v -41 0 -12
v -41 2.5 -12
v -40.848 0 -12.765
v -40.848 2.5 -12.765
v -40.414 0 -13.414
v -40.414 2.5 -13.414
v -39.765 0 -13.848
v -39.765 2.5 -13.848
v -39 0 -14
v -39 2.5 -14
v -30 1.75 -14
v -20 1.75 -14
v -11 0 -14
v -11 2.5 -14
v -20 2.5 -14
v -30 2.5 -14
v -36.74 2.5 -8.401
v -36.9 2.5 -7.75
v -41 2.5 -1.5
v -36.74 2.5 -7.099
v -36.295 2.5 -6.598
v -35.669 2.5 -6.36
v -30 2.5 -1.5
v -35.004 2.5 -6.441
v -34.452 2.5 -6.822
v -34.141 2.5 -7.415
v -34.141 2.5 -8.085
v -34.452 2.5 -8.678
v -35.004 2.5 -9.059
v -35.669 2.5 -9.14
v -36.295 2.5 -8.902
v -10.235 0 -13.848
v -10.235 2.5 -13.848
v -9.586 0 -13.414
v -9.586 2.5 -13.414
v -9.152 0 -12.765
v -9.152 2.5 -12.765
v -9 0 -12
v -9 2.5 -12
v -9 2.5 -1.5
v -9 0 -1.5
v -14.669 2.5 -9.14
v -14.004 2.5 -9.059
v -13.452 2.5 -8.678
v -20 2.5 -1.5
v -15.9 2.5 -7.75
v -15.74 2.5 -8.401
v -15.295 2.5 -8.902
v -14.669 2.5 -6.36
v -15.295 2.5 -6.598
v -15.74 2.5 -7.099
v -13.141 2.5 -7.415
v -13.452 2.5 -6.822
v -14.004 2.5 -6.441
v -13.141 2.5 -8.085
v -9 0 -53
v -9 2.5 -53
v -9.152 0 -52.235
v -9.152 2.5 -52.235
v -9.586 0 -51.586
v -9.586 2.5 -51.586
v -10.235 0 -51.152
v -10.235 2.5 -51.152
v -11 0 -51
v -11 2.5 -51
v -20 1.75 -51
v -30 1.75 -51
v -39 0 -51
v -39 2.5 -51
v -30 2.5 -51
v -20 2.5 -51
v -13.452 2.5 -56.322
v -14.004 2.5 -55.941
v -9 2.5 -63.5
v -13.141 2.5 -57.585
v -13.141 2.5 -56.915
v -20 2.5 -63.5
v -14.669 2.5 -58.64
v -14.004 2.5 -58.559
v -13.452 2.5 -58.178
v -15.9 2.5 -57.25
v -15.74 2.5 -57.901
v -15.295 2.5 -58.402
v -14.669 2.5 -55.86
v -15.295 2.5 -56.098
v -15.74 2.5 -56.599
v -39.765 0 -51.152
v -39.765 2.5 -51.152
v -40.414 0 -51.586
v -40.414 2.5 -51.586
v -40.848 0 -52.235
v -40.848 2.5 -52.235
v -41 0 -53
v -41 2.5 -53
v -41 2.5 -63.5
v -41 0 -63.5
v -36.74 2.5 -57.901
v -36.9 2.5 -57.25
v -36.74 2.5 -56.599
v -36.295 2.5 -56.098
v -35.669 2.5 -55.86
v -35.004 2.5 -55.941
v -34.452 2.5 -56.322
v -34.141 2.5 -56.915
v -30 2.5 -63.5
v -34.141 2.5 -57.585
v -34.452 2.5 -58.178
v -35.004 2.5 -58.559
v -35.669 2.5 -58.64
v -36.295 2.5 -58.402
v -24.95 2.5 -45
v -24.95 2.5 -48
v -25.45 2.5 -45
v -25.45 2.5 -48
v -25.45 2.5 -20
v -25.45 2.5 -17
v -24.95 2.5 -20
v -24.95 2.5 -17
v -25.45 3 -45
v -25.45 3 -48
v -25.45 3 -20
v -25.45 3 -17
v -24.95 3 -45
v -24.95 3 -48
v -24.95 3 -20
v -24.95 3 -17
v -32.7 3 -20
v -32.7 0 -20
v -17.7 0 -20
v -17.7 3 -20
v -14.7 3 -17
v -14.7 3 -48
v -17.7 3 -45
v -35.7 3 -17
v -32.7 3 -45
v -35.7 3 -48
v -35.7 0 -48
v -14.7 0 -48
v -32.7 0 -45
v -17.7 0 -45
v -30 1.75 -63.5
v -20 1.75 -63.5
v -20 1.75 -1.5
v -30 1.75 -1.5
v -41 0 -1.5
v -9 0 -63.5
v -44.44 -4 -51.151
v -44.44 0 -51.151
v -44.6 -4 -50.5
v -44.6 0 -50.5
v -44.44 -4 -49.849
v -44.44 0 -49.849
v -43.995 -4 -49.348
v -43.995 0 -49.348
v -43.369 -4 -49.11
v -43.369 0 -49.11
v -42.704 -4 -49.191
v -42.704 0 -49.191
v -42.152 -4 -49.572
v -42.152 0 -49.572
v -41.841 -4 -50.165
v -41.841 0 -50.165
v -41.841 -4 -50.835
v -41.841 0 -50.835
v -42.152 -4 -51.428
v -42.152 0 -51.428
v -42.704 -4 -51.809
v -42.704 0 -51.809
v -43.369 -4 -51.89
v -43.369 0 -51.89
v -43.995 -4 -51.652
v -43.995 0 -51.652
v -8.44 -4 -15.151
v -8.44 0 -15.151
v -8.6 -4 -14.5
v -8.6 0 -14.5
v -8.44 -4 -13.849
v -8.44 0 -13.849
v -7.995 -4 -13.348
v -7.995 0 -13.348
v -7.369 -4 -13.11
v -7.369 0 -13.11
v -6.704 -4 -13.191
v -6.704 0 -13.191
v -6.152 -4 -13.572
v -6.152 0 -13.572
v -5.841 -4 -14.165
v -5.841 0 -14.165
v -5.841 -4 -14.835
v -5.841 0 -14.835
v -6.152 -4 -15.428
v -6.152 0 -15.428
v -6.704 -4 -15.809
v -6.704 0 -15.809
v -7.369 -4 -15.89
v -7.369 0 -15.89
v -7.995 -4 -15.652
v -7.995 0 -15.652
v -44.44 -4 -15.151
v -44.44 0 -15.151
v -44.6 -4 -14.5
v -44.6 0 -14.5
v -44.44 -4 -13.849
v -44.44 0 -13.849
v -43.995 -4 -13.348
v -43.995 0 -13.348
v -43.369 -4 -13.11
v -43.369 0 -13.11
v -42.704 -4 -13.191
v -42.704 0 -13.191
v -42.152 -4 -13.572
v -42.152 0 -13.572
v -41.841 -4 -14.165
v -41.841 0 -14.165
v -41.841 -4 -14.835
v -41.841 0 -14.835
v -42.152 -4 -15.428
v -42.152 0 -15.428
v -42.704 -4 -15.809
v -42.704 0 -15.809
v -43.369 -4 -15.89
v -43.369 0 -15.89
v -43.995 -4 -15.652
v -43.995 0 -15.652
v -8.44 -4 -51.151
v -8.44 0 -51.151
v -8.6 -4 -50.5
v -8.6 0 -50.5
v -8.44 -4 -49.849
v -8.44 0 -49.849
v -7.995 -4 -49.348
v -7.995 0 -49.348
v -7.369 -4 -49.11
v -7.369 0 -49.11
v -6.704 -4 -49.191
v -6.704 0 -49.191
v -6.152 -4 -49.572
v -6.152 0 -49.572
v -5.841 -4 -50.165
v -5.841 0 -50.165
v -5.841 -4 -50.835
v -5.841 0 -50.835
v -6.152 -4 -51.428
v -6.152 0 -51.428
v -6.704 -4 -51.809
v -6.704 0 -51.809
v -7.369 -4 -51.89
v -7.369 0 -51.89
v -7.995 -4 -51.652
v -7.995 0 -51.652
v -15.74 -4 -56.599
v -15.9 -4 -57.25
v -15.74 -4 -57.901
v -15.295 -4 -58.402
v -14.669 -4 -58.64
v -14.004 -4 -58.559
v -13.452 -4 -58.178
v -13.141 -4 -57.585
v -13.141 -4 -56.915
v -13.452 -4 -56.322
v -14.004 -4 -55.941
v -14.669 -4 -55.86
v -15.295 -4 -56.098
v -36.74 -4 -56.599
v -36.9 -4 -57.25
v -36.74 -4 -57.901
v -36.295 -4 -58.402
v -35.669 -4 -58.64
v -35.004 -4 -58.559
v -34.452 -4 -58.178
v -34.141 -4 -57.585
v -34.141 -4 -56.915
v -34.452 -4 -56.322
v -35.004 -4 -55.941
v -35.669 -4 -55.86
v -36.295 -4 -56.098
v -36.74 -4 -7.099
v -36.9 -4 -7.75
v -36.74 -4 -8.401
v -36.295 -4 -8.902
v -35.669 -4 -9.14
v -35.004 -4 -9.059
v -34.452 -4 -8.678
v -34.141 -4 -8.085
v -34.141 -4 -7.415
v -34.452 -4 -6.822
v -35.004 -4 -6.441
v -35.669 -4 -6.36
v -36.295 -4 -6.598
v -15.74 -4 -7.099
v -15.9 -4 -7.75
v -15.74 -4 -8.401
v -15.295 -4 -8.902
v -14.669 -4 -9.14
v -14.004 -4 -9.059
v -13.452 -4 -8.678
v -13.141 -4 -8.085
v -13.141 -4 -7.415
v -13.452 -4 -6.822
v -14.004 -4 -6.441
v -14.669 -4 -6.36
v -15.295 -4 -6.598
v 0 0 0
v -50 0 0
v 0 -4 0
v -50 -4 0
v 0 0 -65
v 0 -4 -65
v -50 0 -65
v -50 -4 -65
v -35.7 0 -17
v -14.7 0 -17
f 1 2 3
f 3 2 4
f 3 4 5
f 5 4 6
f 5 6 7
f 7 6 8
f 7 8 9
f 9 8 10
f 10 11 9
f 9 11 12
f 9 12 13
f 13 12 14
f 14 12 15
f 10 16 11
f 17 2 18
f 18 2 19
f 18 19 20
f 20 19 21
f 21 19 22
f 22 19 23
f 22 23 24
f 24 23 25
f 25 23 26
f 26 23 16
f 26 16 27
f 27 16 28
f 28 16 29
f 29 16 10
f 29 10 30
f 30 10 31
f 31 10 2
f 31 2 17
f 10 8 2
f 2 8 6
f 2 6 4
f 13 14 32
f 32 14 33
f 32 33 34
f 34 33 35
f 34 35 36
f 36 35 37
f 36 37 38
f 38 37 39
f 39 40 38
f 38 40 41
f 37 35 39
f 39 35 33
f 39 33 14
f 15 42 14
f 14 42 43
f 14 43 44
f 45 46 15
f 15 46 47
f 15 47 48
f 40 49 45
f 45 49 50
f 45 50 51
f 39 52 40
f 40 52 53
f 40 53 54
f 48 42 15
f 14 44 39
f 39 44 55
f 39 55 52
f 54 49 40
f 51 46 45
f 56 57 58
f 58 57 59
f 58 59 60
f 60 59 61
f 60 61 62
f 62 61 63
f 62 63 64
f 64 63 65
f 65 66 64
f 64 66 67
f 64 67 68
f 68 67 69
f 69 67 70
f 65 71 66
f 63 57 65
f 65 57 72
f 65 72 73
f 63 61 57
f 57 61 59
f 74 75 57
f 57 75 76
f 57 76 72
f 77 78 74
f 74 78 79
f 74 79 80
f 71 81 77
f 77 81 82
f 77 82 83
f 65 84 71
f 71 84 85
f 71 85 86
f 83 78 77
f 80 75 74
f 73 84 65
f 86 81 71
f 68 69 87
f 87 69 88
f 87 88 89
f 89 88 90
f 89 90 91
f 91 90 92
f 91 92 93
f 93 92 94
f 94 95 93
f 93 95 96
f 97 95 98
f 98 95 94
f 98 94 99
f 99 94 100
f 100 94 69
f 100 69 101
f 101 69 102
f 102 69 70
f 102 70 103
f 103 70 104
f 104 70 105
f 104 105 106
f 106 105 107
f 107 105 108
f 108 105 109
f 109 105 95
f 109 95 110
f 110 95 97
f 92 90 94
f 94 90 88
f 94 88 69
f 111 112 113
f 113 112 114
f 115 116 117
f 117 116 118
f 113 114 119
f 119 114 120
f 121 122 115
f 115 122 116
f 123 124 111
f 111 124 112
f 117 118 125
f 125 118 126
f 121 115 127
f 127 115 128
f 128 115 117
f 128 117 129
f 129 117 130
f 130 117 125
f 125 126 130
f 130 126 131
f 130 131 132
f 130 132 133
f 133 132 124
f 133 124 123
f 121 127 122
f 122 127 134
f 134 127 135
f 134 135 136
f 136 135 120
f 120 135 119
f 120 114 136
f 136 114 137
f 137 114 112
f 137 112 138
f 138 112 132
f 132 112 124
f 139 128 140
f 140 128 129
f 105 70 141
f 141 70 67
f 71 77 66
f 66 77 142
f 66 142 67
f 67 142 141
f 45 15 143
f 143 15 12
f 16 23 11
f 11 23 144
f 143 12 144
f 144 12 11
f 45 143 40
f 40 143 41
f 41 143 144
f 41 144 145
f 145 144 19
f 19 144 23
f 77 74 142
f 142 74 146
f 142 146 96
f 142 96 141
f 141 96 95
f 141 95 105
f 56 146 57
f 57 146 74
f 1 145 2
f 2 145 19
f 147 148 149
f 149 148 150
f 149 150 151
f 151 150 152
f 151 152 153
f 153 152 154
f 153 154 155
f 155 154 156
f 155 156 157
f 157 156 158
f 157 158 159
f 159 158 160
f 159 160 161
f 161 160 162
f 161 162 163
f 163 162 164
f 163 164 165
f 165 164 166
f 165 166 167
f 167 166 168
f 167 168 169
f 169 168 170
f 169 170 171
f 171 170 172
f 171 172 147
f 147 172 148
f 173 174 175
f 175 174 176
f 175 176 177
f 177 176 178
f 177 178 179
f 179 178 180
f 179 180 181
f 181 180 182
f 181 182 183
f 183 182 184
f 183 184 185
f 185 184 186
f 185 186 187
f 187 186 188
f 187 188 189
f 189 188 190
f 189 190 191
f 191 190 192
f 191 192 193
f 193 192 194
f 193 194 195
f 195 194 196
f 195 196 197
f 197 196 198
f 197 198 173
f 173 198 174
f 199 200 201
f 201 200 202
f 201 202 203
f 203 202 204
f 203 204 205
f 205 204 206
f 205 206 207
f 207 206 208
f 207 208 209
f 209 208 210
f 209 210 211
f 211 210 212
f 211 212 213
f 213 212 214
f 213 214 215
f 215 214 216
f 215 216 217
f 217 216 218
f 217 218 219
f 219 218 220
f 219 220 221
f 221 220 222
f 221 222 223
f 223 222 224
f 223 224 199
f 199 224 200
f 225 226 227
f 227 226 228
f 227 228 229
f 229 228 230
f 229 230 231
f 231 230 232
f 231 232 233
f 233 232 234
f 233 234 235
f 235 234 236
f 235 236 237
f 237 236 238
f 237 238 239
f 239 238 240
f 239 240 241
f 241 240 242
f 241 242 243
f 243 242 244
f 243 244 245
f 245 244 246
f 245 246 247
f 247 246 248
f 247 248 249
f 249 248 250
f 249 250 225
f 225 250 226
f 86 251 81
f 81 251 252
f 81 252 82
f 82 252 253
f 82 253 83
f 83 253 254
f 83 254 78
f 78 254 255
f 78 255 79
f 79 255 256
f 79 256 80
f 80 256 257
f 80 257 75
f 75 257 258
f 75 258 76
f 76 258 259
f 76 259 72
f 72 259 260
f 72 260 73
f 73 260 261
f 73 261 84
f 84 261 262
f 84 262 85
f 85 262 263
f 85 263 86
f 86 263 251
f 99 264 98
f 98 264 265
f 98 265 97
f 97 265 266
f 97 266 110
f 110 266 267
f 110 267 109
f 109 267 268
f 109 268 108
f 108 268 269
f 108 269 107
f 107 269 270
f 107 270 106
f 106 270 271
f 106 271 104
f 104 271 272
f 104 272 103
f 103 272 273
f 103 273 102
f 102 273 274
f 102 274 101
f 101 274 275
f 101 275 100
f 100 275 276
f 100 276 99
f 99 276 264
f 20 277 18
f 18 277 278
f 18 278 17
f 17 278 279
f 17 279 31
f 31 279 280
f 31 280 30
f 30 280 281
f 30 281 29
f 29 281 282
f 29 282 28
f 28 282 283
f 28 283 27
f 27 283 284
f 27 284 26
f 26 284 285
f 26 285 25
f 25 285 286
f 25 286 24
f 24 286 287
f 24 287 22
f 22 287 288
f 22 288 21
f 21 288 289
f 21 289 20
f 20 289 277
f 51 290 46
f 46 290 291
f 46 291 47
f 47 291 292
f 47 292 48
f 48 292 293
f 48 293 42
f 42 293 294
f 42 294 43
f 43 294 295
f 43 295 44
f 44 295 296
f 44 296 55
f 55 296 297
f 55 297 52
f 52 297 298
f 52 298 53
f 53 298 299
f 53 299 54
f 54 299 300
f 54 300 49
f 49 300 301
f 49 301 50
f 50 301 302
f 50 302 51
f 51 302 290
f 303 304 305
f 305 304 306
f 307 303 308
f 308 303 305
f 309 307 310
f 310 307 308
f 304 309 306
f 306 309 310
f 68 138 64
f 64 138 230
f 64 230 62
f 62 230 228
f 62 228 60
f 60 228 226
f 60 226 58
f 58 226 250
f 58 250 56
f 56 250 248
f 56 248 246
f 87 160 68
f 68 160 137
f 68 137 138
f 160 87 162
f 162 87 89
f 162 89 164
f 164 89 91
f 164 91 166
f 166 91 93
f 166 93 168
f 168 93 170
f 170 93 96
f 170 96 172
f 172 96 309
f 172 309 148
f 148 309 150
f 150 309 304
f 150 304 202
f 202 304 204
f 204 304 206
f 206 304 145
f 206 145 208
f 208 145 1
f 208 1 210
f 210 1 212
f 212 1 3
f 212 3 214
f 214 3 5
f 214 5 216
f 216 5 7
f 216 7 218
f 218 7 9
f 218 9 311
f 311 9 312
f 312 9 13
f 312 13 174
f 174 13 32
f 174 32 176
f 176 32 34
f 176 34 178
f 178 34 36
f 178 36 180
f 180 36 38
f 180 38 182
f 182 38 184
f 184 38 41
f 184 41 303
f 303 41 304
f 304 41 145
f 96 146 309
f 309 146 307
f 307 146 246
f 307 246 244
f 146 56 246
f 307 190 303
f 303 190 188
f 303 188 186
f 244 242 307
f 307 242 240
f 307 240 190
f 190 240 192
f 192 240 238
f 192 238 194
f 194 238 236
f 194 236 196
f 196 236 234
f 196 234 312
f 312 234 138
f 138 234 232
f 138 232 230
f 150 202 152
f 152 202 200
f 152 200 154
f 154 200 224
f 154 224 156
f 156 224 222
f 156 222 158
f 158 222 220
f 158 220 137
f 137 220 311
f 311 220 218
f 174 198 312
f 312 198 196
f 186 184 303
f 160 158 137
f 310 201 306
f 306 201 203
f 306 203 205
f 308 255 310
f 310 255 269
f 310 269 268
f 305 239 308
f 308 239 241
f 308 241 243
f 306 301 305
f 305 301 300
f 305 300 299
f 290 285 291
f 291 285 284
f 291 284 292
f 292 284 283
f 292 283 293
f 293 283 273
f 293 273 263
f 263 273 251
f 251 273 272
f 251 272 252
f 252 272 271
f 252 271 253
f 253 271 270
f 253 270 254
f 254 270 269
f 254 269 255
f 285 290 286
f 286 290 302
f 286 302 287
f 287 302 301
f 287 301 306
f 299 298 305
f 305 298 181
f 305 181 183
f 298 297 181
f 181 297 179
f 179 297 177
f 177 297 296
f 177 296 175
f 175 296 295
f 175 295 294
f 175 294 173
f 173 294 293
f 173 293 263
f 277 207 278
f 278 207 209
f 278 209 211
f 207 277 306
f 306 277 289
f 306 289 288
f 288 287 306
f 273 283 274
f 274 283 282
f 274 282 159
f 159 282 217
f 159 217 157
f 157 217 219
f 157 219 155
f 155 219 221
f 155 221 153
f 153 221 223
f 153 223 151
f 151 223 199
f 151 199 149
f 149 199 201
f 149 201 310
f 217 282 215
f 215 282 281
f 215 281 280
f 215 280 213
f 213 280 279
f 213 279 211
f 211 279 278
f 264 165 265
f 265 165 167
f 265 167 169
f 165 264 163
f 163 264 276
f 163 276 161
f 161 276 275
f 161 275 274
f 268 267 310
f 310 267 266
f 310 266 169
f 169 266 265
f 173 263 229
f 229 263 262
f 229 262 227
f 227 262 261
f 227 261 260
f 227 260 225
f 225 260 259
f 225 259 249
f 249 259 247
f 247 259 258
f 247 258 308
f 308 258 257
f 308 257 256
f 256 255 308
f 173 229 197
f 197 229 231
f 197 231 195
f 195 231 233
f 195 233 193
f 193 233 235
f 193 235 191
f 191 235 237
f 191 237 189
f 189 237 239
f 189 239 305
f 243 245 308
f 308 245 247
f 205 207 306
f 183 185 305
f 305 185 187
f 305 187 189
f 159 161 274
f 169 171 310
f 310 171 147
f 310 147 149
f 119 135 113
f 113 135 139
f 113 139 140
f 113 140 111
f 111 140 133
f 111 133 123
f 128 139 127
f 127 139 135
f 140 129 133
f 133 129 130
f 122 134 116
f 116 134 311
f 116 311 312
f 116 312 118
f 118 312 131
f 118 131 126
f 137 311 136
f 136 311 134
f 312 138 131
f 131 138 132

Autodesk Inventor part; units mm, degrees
ref_plane "YZ Plane" through (0, 0, 0) normal (1, 0, 0) x (0, 1, 0)
ref_plane "XZ Plane" through (0, 0, 0) normal (0, 1, 0) x (-1, 0, 0)
ref_plane "XY Plane" through (0, 0, 0) normal (0, 0, 1) x (1, 0, 0)
sketch "Boceto1" plane through (0, 0, 0) normal (0, 1, 0) x (-1, 0, 0)
  line L0 (0, 0) -> (50, 0)
  line L1 (50, 0) -> (50, -65)
  line L2 (50, -65) -> (0, -65)
  line L3 (0, -65) -> (0, 0)
  line L4 (17.7, -45) -> (32.7, -45)
  line L5 (32.7, -45) -> (32.7, -20)
  line L6 (32.7, -20) -> (17.7, -20)
  line L7 (17.7, -20) -> (17.7, -45)
  line L8 (17.7, -45) -> (32.7, -20) construction
  line L9 (32.7, -45) -> (17.7, -20) construction
  line L10 (35.7, -17) -> (35.7, -48)
  line L11 (35.7, -48) -> (14.7, -48)
  line L12 (14.7, -48) -> (14.7, -17)
  line L13 (14.7, -17) -> (35.7, -17)
  line L14 (41, -1.5) -> (9, -1.5)
  line L15 (9, -1.5) -> (9, -14)
  line L16 (9, -14) -> (41, -14)
  line L17 (41, -14) -> (41, -1.5)
  line L18 (32.7, -32.5) -> (17.7, -32.5) construction
  line L19 (41, -7.75) -> (35.5, -7.75) construction
  line L20 (35.5, -7.75) -> (14.5, -7.75) construction
  line L21 (14.5, -7.75) -> (9, -7.75) construction
  circle A0 centre (35.5, -7.75) radius 1.4
  circle A1 centre (14.5, -7.75) radius 1.4
  line L22 (41, -63.5) -> (9, -63.5)
  line L23 (9, -63.5) -> (9, -51)
  line L24 (9, -51) -> (41, -51)
  line L25 (41, -51) -> (41, -63.5)
  circle A2 centre (35.5, -57.25) radius 1.4
  circle A3 centre (14.5, -57.25) radius 1.4
  line L26 (50, -32.5) -> (43.2, -32.5) construction
  line L27 (0, -32.5) -> (6.8, -32.5)
  line L28 (45.9347, 0) -> (45.9347, -14) construction
  line L29 (43.2, -32.5) -> (43.2, -14.5) construction
  line L30 (43.2, -14.5) -> (50, -14.5) construction
  circle A4 centre (43.2, -14.5) radius 1.4
  line L31 (25.2, -20) -> (25.2, -45) construction
  circle A5 centre (7.2, -14.5) radius 1.4
  circle A6 centre (35.5, -57.25) radius 1.4
  circle A7 centre (43.2, -50.5) radius 1.4
  circle A8 centre (7.2, -50.5) radius 1.4
  line L32 (35.5, -7.75) -> (14.5, -7.75)
  point P0 (25.2, -32.5)
  point P1 (25, -14)
  point P2 (25.2, -17)
  dimension "d0" = 65
  dimension "d1" = 50
  dimension "d2" = 25
  dimension "d3" = 15
  dimension "d4" = 3
  dimension "d5" = 12.5
  dimension "d6" = 32
  dimension "d7" = 3
  dimension "d8" = 5.5
  dimension "d9" = 5.5
  dimension "d10" = 2.8
  dimension "d11" = 2.8
  dimension "d12" = 6.8
  dimension "d13" = 6.8
  dimension "d14" = 14
  dimension "d15" = 2.8
  dimension "d30" = 36
  dimension "d31" = 36
  dimension "d32" = 1.5
extrude "Extrusión1" add sketch "Boceto1" along normal blind 3 contours L10 L11 L12 L13
extrude "Extrusión2" add sketch "Boceto1" against normal blind 4 contours L0 L1 L2 L3 | L17 L16 L15 L14 | L22 L23 L24 L25
extrude "Extrusión3" add sketch "Boceto1" along normal blind 2.5 contours L17 L16 L15 L14 | L22 L23 L24 L25
sketch "Boceto2" plane through (0, 2.5, 0) normal (0, 1, 0) x (1, 0, 0)
  line L0 (-41, 1.5) -> (-9, 1.5) projected
  line L1 (-25, 1.5) -> (-25, 14)
  line L2 (-9, 14) -> (-41, 14) projected
  line L3 (-20, 1.5) -> (-30, 1.5)
  line L4 (-30, 1.5) -> (-30, 14)
  line L5 (-30, 14) -> (-20, 14)
  line L6 (-20, 14) -> (-20, 1.5)
  line L7 (-20, 1.5) -> (-30, 14) construction
  line L8 (-30, 1.5) -> (-20, 14) construction
  line L9 (-32.7, 32.5) -> (-17.7, 32.5) construction
  line L10 (-41, 63.5) -> (-9, 63.5)
  line L11 (-9, 51) -> (-41, 51)
  line L12 (-30, 63.5) -> (-30, 51)
  line L13 (-20, 51) -> (-20, 63.5)
  point P0 (0, 0)
  point P1 (-25, 7.75)
  dimension "d22" = 10
extrude "Extrusión4" cut sketch "Boceto2" against normal blind 0.75
extrude "Extrusión5" add sketch "Boceto1" against normal blind 4 contours L7 L6 L5 L4 | L10 L11 L12 L13
sketch "Boceto3" plane through (0, 3, 0) normal (0, 1, 0) x (1, 0, 0)
  line L0 (-25.2, 20) -> (-25.2, 45) construction
  line L1 (-35.7, 17) -> (-14.7, 17) projected
  line L2 (-25.2, 17) -> (-25.2, 48)
  line L3 (-14.7, 48) -> (-35.7, 48) projected
  line L4 (-24.95, 17) -> (-25.45, 17)
  line L5 (-25.45, 17) -> (-25.45, 48)
  line L6 (-25.45, 48) -> (-24.95, 48)
  line L7 (-24.95, 48) -> (-24.95, 17)
  line L8 (-24.95, 17) -> (-25.45, 48) construction
  line L9 (-25.45, 17) -> (-24.95, 48) construction
  point P0 (0, 0)
  point P1 (-25.2, 32.5)
  point P2 (-24.95, 17)
  point P3 (-24.95, 48)
  point P4 (-25.45, 17)
  dimension "d27" = 0.5
extrude "Extrusión6" cut sketch "Boceto3" against normal blind 0.5
sketch "Boceto4" plane through (-41, 0, -1.5) normal (0, 0, 1) x (1, 0, 0)
  line L0 (16.05, 2.5) -> (15.55, 2.5) projected
  line L1 (21, 1.75) -> (11, 1.75) projected
  line L2 (-9, 0) -> (41, 0) projected
  line L3 (15.55, 2.5) -> (15.55, 3) projected
fillet "Empalme1" radius 2 4 edges at (-41, 1.25, -51) (-9, 1.25, -51) (-9, 1.25, -14) (-41, 1.25, -14)
equation "\"d9\" = d8"
equation "\"d13\" = d12"
properties part number "Molde 1FBR 0.5mm"
